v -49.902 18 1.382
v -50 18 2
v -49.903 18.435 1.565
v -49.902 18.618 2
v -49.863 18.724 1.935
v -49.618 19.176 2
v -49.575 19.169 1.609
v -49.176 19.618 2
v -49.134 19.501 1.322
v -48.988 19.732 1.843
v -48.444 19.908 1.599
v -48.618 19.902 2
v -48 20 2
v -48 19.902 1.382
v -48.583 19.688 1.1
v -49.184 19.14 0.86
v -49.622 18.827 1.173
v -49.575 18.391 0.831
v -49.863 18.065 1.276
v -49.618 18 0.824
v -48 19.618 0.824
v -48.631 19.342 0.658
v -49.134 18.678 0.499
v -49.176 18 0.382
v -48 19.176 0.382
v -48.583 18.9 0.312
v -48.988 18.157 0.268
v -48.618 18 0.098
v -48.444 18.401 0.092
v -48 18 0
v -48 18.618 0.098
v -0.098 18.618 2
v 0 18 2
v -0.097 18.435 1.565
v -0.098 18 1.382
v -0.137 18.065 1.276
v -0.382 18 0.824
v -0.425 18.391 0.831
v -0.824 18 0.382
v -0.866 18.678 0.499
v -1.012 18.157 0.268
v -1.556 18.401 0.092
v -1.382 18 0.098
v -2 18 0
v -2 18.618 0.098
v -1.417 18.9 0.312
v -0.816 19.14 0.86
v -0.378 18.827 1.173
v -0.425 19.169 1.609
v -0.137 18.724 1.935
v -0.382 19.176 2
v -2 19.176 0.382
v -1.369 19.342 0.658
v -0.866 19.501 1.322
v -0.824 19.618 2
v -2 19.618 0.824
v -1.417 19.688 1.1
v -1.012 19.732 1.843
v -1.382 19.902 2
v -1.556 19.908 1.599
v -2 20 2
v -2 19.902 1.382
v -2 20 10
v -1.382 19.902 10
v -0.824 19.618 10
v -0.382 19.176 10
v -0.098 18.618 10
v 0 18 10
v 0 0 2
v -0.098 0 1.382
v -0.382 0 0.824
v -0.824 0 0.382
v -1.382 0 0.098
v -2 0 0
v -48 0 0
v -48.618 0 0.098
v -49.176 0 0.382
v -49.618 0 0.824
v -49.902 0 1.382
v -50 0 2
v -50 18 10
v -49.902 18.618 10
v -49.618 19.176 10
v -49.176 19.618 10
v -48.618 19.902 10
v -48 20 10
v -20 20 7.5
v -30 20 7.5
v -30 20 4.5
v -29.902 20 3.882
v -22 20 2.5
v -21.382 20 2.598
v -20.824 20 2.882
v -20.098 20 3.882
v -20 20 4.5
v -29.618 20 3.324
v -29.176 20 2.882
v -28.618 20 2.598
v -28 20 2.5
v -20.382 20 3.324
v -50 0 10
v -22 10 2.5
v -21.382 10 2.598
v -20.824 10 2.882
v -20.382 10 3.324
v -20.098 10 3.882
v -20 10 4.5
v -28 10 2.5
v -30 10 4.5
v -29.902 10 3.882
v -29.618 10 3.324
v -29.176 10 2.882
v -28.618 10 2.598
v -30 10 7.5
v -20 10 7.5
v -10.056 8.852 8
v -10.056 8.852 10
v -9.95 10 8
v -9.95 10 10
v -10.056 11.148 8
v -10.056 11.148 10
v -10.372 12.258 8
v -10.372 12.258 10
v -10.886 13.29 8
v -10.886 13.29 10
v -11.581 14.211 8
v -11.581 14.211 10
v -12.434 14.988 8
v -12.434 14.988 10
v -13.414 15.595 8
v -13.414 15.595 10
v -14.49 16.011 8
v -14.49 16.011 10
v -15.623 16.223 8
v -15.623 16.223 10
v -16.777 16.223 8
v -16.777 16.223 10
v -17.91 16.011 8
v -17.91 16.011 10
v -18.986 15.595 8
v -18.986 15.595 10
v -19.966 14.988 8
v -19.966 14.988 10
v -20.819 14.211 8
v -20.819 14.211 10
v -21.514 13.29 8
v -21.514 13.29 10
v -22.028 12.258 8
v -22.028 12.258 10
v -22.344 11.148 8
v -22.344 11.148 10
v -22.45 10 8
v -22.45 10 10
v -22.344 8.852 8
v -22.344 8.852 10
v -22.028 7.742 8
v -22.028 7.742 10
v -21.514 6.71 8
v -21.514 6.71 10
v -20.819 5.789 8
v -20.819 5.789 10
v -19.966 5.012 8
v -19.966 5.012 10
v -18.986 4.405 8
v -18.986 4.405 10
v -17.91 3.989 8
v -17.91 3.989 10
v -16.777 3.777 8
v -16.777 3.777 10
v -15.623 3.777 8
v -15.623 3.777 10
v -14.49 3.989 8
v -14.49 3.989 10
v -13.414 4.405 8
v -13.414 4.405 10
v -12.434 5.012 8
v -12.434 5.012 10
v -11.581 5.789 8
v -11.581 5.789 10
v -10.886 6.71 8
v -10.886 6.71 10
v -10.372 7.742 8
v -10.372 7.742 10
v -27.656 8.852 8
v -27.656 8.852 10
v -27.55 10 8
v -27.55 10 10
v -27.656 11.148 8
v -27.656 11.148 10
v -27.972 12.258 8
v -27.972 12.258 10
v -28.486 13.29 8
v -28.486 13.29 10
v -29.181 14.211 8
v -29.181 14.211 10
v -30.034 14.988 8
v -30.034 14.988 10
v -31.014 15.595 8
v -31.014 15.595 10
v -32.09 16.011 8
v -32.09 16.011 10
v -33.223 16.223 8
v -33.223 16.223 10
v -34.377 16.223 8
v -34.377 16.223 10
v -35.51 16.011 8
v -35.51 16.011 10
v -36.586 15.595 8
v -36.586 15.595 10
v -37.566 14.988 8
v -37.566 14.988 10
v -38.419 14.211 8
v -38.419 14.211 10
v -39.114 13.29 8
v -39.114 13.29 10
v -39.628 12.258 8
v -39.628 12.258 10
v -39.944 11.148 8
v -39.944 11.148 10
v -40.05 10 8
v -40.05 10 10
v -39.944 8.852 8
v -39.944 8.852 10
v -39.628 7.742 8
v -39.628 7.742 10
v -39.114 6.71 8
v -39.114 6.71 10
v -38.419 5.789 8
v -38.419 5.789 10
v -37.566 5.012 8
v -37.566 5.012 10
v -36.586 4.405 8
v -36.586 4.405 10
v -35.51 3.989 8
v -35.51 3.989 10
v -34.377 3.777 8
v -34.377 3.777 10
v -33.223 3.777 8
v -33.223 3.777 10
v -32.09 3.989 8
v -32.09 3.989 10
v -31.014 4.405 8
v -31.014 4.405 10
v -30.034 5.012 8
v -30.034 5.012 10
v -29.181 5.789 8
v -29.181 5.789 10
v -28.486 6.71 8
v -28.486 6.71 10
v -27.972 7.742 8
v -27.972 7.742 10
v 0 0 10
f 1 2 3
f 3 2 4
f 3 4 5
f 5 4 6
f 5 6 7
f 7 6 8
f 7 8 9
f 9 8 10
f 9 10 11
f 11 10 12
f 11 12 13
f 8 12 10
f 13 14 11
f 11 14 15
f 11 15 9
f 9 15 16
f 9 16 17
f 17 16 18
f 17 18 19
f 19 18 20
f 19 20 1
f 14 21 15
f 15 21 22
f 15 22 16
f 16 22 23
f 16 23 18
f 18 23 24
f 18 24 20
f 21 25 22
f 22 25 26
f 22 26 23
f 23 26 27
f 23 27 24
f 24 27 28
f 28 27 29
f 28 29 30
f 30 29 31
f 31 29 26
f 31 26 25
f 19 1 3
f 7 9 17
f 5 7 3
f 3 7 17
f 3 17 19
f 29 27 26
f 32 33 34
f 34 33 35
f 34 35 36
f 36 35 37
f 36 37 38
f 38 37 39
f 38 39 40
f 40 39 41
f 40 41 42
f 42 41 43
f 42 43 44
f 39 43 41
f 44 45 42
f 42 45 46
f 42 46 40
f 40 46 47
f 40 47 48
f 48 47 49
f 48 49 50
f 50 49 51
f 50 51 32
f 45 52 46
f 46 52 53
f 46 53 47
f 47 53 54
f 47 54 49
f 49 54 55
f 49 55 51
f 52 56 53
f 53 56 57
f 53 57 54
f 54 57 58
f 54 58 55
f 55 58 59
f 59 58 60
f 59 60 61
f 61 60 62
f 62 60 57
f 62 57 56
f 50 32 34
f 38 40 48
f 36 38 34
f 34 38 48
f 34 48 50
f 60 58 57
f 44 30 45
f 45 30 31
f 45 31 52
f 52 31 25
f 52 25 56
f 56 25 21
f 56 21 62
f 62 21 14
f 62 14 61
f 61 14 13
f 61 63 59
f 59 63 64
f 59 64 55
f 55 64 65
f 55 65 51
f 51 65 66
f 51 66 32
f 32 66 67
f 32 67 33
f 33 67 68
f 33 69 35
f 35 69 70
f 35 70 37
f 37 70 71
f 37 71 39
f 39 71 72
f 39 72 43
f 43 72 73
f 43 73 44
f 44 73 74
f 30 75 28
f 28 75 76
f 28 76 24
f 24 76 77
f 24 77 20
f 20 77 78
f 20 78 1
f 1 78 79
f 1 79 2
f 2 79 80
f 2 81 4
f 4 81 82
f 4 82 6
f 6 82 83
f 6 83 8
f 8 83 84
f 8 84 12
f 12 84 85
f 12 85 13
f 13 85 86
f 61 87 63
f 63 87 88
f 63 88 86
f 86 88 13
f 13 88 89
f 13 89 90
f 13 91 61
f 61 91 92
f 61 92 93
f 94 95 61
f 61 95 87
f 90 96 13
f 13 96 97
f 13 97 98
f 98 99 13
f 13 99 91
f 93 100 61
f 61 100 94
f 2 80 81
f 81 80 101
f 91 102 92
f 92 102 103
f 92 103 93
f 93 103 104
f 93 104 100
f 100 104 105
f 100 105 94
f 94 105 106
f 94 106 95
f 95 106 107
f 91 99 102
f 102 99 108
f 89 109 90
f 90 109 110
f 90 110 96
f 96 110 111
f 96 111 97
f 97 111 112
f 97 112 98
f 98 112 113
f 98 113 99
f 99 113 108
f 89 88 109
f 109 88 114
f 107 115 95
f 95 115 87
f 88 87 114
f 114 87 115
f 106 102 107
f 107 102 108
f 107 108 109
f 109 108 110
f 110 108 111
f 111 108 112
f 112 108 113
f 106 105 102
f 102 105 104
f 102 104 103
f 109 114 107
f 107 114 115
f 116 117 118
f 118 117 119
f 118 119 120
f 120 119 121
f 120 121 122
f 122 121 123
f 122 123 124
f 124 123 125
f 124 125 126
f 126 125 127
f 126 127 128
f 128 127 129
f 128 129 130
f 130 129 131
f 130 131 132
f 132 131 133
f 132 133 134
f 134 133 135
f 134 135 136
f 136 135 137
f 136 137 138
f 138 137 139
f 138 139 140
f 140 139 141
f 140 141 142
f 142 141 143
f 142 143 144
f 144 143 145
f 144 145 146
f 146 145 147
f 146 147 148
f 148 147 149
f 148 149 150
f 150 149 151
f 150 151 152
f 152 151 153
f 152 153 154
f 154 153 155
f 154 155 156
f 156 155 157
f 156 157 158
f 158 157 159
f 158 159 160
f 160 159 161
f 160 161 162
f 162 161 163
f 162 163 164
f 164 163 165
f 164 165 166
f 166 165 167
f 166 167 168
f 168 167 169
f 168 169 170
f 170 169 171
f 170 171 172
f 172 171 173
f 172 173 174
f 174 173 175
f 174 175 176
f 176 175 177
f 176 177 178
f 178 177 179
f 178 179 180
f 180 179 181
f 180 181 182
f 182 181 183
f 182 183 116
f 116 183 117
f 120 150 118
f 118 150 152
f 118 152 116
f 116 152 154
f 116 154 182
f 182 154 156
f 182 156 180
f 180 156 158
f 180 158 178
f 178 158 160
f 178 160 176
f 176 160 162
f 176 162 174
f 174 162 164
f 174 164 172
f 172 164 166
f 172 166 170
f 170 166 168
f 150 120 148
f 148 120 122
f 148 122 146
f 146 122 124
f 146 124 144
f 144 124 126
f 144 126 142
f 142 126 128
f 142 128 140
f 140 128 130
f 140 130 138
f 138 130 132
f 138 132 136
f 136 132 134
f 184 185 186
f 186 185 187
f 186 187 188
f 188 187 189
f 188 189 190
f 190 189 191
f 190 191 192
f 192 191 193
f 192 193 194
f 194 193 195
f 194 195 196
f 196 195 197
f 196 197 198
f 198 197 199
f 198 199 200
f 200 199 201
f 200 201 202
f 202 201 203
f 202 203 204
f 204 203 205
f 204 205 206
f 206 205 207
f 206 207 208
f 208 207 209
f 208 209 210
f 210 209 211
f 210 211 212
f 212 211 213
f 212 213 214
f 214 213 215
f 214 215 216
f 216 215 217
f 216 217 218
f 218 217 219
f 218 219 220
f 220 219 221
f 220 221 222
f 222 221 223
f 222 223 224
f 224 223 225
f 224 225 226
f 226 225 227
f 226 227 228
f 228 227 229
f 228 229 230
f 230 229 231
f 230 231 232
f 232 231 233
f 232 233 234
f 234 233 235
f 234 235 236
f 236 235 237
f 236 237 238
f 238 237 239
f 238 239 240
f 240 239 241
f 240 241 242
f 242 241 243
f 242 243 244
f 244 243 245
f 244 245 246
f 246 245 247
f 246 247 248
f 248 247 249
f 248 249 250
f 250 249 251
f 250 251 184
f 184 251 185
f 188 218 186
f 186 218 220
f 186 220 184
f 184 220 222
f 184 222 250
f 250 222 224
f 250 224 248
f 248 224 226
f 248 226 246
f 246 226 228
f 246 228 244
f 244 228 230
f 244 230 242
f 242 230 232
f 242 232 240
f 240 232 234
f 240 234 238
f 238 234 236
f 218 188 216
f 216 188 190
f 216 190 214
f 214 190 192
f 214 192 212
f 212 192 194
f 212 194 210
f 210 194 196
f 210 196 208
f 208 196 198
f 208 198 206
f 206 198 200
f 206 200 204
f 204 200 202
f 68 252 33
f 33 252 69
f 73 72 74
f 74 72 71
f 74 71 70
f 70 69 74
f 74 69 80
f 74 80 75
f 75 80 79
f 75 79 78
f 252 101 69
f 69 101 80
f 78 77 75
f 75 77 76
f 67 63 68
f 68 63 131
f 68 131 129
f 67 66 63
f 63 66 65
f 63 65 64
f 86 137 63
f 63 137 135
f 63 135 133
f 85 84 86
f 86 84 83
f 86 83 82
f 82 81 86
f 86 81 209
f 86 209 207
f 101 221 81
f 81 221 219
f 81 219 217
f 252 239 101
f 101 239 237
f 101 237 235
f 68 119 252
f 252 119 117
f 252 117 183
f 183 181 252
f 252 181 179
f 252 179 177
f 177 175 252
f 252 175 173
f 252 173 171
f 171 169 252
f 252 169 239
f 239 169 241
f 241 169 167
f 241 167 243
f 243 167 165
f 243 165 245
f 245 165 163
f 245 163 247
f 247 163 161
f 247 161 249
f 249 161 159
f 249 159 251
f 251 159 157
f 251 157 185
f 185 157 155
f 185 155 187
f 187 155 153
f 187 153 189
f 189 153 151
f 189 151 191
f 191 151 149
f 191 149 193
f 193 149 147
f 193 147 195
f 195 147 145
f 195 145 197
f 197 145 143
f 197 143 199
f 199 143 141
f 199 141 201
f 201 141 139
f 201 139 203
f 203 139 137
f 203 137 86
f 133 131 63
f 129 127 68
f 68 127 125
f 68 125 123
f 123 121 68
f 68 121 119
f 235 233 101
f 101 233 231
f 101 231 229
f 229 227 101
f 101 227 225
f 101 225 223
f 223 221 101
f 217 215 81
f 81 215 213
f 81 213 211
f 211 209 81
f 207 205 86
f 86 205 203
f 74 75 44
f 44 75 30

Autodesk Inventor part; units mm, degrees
ref_plane "YZ Plane" through (0, 0, 0) normal (1, 0, 0) x (0, 1, 0)
ref_plane "XZ Plane" through (0, 0, 0) normal (0, 1, 0) x (-1, 0, 0)
ref_plane "XY Plane" through (0, 0, 0) normal (0, 0, 1) x (1, 0, 0)
sketch "Sketch6" plane through (0, 0, 0) normal (0, 0, 1) x (1, 0, 0)
  line L0 (0, 0) -> (-50, 0)
  line L1 (-50, 0) -> (-50, 20)
  line L2 (-50, 20) -> (0, 20)
  line L3 (0, 20) -> (0, 0)
  dimension "d55" = 50
  dimension "d56" = 20
extrude "Extrusion5" add sketch "Sketch6" along normal blind 10
sketch "Sketch7" plane through (0, 0, 10) normal (0, 0, 1) x (1, 0, 0)
  circle A0 centre (-33.8, 10) radius 6.25
  circle A1 centre (-16.2, 10) radius 6.25
  point P0 (0, 0)
  dimension "d59" = 12.5
  dimension "d60" = 12.5
extrude "Extrusion6" cut sketch "Sketch7" against normal blind 2
sketch "Sketch8" plane through (-50, 20, 0) normal (0, 1, 0) x (1, 0, 0)
  line L0 (50, 0) -> (30, 0)
  line L1 (30, 0) -> (30, -2.5)
  line L2 (30, -2.5) -> (50, -2.5)
  line L3 (50, -2.5) -> (50, 0)
  line L4 (30, -2.5) -> (20, -2.5)
  line L5 (20, -2.5) -> (20, -7.5)
  line L6 (20, -7.5) -> (30, -7.5)
  line L7 (30, -7.5) -> (30, -2.5)
  dimension "d63" = 20
  dimension "d64" = 2.5
  dimension "d65" = 10
  dimension "d66" = 5
extrude "Extrusion7" cut sketch "Sketch8" against normal blind 10 contours L7 L6 L5 L4
fillet "Fillet4" radius 2 2 edges at (-30, 15, 2.5) (-20, 15, 2.5)
fillet "Fillet5" radius 2 5 edges at (0, 20, 5) (-50, 20, 5) (-50, 10, 0) (-25, 20, 0) (0, 10, 0)
properties part number "A1 Holder"
